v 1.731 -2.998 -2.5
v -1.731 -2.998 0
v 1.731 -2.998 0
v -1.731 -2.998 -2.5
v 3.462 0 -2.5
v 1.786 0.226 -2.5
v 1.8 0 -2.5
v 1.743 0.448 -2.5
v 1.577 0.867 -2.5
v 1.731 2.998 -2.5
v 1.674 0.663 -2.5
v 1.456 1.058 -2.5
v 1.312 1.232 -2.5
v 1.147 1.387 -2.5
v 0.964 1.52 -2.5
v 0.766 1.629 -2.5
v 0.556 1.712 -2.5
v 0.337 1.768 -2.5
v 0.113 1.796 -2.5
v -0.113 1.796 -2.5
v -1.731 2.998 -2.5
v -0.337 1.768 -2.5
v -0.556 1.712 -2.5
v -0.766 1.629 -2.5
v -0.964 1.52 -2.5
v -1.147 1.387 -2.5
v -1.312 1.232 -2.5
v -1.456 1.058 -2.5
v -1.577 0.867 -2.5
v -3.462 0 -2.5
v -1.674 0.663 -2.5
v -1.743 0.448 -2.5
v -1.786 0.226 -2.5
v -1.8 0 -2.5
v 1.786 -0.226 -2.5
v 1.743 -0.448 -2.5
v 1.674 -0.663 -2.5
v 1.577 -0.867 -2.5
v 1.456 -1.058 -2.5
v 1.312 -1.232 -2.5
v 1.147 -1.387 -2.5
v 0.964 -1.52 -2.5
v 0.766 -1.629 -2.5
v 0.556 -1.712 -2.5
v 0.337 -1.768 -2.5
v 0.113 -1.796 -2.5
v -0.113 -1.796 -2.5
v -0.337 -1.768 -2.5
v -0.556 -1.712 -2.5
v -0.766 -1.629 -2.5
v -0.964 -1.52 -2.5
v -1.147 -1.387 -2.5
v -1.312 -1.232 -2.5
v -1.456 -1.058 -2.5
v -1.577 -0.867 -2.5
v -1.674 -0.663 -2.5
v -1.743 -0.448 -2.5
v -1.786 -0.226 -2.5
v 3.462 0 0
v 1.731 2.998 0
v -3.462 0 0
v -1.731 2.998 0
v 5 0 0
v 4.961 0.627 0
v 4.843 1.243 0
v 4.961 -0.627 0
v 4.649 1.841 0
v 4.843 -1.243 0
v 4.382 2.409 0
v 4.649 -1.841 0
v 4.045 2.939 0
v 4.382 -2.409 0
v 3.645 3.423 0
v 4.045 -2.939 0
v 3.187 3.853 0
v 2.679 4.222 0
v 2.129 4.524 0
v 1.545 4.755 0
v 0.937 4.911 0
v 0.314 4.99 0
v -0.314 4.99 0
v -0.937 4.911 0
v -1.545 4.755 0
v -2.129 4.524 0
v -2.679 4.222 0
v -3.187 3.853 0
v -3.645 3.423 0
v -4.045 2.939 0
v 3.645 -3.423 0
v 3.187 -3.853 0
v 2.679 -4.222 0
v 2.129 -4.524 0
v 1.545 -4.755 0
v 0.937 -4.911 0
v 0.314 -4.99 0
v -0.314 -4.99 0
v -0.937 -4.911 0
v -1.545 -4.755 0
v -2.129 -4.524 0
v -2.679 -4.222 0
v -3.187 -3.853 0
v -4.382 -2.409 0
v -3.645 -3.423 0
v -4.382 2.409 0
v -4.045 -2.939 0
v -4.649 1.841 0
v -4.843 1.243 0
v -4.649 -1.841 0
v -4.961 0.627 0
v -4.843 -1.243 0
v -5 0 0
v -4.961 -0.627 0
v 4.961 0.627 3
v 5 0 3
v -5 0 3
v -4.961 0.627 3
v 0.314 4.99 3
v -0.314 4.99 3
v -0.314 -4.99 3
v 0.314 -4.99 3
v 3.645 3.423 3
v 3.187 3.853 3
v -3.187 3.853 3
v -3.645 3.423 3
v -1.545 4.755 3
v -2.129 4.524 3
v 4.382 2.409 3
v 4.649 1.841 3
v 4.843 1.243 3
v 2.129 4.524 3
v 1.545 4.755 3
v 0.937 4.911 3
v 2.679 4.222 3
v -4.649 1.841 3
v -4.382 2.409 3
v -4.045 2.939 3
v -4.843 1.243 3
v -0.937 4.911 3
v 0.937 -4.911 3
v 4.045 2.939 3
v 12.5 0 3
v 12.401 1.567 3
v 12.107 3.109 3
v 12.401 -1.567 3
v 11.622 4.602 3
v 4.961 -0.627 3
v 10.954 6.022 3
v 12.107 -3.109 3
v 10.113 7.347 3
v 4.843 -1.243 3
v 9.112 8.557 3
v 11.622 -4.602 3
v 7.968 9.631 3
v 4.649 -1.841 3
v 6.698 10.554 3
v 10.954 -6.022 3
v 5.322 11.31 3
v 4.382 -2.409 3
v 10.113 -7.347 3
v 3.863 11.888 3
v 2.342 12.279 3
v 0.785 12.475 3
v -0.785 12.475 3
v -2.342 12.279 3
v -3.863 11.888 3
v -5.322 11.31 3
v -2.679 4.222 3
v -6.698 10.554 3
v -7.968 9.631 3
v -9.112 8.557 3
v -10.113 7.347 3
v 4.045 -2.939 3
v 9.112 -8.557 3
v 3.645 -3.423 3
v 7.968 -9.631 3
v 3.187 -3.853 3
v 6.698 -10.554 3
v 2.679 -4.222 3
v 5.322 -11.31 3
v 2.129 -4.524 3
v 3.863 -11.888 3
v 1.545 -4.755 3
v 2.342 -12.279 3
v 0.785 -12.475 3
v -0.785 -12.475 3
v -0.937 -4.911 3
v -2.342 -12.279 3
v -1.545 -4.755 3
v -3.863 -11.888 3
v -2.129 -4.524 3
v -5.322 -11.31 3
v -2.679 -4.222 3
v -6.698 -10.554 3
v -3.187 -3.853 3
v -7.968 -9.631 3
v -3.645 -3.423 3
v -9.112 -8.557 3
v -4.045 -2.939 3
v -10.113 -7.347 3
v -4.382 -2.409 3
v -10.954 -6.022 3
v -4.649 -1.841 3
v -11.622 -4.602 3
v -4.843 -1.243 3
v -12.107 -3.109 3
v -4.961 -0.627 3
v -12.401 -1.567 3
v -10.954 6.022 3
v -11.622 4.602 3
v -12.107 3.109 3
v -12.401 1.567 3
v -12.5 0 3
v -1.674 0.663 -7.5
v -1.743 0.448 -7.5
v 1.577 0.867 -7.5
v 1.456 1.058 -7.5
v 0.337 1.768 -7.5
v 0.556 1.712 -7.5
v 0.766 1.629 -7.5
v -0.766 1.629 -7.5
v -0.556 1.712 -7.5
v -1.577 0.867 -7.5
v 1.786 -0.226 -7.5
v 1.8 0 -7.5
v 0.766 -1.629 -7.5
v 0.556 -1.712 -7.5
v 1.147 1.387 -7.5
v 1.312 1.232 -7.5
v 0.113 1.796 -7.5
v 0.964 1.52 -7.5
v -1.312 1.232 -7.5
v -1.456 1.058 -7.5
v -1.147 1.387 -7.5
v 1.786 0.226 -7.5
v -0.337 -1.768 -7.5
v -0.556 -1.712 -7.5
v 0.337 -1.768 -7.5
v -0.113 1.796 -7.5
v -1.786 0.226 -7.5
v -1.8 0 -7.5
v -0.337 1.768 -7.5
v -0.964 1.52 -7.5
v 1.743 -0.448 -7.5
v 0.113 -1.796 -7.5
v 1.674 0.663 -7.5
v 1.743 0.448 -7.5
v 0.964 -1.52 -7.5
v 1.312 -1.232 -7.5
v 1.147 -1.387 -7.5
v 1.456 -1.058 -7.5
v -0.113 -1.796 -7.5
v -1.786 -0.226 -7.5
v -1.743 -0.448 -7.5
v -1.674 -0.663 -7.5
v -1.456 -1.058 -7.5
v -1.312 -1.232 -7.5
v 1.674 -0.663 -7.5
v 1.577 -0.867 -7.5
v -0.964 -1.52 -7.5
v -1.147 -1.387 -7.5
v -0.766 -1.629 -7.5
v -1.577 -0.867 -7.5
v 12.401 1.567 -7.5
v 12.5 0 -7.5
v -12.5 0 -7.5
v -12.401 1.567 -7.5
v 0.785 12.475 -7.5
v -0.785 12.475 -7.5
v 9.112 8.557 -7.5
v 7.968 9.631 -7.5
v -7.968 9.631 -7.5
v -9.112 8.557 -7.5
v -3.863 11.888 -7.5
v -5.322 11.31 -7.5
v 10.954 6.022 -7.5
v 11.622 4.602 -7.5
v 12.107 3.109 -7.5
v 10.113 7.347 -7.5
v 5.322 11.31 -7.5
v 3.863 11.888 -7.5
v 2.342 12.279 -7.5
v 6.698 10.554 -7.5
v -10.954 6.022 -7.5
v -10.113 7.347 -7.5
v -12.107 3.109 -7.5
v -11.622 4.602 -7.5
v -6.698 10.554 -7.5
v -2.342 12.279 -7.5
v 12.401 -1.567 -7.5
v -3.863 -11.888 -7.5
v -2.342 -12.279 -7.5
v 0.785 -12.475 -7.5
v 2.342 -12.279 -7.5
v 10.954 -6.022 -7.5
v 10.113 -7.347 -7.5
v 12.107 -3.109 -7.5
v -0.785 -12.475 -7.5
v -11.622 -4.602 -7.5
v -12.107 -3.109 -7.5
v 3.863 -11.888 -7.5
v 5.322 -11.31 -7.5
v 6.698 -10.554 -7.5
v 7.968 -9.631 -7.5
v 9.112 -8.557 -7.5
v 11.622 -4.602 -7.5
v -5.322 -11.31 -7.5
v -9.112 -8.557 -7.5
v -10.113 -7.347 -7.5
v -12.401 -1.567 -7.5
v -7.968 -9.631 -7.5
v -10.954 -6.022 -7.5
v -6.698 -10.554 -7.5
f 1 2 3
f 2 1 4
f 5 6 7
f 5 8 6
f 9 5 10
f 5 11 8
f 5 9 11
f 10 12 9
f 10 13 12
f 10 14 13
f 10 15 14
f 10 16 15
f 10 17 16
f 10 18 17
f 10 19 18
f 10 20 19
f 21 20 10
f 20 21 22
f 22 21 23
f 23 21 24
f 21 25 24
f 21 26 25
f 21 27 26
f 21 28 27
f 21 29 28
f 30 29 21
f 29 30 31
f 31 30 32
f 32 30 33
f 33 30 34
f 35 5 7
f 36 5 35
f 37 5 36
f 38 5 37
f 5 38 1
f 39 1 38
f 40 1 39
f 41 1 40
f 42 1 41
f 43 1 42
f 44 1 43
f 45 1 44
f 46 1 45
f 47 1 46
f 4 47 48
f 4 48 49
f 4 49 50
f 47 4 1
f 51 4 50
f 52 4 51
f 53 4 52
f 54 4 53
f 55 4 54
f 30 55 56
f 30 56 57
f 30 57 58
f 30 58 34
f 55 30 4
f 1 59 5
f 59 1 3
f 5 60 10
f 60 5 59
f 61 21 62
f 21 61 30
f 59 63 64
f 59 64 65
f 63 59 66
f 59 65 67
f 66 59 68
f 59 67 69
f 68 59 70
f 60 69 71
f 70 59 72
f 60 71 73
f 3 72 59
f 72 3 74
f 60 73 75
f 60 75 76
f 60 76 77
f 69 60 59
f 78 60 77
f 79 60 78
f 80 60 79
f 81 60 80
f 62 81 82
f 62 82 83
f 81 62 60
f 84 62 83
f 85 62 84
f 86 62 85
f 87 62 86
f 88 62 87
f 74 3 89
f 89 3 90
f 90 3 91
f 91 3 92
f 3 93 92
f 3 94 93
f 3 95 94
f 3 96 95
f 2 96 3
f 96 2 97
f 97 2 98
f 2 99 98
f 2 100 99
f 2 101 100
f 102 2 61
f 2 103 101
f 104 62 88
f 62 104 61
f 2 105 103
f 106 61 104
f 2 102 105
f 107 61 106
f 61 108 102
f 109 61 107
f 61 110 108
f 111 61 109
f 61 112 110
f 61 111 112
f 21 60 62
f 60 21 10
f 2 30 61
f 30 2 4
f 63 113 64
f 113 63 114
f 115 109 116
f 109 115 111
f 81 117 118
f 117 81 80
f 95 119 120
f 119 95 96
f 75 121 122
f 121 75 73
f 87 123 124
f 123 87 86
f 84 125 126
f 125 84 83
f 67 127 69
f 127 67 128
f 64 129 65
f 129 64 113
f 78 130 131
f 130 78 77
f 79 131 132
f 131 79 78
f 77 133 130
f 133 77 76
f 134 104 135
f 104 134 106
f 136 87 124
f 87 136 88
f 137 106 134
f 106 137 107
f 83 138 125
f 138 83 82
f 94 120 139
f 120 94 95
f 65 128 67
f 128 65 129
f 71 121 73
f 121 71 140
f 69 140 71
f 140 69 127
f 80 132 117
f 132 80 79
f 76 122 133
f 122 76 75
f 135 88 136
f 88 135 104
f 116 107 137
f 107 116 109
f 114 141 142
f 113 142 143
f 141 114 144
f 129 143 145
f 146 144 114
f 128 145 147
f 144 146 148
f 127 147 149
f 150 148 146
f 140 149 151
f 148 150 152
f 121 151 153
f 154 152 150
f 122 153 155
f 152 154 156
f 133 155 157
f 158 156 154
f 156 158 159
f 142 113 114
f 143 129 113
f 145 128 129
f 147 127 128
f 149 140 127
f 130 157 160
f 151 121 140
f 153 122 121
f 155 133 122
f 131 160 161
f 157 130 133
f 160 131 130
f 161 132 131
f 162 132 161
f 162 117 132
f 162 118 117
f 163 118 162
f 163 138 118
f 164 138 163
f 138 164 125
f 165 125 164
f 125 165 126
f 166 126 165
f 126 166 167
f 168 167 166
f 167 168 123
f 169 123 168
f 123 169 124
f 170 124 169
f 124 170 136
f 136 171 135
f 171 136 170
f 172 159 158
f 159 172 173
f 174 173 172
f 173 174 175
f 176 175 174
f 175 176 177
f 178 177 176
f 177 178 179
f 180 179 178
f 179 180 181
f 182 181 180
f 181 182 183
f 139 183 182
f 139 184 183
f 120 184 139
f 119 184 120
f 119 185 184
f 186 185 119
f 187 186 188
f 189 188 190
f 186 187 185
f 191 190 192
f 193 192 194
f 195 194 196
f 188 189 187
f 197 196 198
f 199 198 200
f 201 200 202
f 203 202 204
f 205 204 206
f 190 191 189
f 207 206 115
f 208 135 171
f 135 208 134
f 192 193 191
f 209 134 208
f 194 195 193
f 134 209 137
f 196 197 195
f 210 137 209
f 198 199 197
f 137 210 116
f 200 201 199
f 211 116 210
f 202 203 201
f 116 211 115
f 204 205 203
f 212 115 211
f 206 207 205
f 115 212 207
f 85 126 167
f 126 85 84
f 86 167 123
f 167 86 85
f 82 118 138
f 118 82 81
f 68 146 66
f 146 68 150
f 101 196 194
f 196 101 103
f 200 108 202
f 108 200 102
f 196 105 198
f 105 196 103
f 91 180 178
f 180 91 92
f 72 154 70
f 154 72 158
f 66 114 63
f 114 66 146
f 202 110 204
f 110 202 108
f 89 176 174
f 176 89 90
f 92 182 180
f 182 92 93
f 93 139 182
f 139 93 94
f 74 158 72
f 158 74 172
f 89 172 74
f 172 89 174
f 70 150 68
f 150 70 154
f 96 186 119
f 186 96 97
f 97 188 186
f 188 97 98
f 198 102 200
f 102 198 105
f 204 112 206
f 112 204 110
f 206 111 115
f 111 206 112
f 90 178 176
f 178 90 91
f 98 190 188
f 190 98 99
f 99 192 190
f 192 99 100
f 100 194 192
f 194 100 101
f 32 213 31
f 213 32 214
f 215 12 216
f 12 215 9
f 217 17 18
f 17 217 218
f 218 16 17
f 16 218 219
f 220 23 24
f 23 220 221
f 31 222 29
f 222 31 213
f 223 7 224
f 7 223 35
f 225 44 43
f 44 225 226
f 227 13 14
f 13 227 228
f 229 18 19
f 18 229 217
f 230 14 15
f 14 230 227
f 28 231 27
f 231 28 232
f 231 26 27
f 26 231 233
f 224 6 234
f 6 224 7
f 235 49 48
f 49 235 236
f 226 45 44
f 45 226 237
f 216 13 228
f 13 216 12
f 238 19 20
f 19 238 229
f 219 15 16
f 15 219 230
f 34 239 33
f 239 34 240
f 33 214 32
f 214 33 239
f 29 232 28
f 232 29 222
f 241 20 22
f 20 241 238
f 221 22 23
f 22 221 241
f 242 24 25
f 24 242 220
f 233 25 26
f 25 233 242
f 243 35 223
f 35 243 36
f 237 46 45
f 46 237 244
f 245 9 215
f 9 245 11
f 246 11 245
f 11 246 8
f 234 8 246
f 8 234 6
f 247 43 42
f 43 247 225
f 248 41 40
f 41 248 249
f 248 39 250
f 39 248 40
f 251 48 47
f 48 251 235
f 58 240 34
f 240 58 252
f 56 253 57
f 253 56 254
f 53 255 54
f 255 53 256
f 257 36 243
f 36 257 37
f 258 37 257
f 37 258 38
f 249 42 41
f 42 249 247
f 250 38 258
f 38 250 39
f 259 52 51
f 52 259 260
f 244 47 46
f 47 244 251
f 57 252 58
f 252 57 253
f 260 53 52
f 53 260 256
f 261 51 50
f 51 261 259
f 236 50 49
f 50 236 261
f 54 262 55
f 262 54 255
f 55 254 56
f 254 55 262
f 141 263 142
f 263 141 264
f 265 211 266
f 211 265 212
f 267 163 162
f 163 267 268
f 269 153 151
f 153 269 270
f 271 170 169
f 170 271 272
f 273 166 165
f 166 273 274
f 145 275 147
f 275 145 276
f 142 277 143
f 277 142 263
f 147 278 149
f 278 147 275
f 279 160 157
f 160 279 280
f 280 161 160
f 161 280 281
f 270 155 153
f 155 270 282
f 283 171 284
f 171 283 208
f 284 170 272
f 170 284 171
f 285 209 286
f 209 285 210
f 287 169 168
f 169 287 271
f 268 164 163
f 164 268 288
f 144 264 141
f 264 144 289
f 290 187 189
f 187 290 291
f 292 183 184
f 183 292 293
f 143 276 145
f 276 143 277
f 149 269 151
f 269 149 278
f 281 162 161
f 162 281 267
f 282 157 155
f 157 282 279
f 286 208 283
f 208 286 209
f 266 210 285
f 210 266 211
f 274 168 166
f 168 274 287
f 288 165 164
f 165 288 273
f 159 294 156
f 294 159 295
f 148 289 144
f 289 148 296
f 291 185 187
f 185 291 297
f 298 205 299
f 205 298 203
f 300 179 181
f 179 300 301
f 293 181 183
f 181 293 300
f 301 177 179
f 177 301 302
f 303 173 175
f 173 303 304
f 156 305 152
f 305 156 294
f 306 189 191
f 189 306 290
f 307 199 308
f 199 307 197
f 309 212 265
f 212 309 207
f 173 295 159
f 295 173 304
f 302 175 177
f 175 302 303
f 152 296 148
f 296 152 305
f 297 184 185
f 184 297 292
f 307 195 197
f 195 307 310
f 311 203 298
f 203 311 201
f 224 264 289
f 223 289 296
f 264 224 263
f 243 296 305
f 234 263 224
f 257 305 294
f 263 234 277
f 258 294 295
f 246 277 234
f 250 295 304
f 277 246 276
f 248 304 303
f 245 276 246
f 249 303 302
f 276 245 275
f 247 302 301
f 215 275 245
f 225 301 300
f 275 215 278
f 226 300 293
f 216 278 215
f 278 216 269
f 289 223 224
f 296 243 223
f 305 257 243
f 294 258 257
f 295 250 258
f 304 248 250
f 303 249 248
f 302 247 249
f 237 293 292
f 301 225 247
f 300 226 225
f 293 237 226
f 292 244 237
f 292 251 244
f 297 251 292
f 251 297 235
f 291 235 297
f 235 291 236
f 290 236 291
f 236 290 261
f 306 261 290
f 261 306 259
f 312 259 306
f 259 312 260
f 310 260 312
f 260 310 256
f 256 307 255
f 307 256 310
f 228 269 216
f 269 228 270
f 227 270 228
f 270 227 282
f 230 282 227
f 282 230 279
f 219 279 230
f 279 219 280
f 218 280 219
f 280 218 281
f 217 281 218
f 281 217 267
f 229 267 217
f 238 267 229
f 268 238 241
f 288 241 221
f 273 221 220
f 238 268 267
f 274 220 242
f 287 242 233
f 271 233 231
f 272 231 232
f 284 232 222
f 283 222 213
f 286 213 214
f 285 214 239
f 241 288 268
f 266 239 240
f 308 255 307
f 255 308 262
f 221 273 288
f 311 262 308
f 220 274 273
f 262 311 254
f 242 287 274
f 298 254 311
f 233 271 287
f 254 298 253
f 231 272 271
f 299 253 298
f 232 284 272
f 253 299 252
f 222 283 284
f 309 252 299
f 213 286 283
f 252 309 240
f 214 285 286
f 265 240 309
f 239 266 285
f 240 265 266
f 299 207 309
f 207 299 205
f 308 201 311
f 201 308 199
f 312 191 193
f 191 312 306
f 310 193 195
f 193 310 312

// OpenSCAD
$fn = 50;

difference() {
	union() {
		translate(v = [0, 0, -7.5]) {
			cylinder(h = 10.5, r = 12.5);
		}
	}
	union() {
		translate(v = [0, 0, 0]) {
			rotate(a = [0, 0, 0]) {
				difference() {
					union() {
						translate(v = [0, 0, -2.5]) {
							linear_extrude(height = 2.5) {
								polygon(points = [[3.4619999999999997, 0.0], [1.7310000000000003, 2.9981799479017264], [-1.7309999999999992, 2.9981799479017264], [-3.4619999999999997, 4.2397272186481365e-16], [-1.7310000000000014, -2.998179947901726], [1.7309999999999977, -2.9981799479017277]]);
							}
						}
					}
					union();
				}
			}
		}
		#cylinder(h = 3, r = 5.0);
		#translate(v = [0, 0, -100.0]) {
			cylinder(h = 200, r = 1.8);
		}
	}
}
